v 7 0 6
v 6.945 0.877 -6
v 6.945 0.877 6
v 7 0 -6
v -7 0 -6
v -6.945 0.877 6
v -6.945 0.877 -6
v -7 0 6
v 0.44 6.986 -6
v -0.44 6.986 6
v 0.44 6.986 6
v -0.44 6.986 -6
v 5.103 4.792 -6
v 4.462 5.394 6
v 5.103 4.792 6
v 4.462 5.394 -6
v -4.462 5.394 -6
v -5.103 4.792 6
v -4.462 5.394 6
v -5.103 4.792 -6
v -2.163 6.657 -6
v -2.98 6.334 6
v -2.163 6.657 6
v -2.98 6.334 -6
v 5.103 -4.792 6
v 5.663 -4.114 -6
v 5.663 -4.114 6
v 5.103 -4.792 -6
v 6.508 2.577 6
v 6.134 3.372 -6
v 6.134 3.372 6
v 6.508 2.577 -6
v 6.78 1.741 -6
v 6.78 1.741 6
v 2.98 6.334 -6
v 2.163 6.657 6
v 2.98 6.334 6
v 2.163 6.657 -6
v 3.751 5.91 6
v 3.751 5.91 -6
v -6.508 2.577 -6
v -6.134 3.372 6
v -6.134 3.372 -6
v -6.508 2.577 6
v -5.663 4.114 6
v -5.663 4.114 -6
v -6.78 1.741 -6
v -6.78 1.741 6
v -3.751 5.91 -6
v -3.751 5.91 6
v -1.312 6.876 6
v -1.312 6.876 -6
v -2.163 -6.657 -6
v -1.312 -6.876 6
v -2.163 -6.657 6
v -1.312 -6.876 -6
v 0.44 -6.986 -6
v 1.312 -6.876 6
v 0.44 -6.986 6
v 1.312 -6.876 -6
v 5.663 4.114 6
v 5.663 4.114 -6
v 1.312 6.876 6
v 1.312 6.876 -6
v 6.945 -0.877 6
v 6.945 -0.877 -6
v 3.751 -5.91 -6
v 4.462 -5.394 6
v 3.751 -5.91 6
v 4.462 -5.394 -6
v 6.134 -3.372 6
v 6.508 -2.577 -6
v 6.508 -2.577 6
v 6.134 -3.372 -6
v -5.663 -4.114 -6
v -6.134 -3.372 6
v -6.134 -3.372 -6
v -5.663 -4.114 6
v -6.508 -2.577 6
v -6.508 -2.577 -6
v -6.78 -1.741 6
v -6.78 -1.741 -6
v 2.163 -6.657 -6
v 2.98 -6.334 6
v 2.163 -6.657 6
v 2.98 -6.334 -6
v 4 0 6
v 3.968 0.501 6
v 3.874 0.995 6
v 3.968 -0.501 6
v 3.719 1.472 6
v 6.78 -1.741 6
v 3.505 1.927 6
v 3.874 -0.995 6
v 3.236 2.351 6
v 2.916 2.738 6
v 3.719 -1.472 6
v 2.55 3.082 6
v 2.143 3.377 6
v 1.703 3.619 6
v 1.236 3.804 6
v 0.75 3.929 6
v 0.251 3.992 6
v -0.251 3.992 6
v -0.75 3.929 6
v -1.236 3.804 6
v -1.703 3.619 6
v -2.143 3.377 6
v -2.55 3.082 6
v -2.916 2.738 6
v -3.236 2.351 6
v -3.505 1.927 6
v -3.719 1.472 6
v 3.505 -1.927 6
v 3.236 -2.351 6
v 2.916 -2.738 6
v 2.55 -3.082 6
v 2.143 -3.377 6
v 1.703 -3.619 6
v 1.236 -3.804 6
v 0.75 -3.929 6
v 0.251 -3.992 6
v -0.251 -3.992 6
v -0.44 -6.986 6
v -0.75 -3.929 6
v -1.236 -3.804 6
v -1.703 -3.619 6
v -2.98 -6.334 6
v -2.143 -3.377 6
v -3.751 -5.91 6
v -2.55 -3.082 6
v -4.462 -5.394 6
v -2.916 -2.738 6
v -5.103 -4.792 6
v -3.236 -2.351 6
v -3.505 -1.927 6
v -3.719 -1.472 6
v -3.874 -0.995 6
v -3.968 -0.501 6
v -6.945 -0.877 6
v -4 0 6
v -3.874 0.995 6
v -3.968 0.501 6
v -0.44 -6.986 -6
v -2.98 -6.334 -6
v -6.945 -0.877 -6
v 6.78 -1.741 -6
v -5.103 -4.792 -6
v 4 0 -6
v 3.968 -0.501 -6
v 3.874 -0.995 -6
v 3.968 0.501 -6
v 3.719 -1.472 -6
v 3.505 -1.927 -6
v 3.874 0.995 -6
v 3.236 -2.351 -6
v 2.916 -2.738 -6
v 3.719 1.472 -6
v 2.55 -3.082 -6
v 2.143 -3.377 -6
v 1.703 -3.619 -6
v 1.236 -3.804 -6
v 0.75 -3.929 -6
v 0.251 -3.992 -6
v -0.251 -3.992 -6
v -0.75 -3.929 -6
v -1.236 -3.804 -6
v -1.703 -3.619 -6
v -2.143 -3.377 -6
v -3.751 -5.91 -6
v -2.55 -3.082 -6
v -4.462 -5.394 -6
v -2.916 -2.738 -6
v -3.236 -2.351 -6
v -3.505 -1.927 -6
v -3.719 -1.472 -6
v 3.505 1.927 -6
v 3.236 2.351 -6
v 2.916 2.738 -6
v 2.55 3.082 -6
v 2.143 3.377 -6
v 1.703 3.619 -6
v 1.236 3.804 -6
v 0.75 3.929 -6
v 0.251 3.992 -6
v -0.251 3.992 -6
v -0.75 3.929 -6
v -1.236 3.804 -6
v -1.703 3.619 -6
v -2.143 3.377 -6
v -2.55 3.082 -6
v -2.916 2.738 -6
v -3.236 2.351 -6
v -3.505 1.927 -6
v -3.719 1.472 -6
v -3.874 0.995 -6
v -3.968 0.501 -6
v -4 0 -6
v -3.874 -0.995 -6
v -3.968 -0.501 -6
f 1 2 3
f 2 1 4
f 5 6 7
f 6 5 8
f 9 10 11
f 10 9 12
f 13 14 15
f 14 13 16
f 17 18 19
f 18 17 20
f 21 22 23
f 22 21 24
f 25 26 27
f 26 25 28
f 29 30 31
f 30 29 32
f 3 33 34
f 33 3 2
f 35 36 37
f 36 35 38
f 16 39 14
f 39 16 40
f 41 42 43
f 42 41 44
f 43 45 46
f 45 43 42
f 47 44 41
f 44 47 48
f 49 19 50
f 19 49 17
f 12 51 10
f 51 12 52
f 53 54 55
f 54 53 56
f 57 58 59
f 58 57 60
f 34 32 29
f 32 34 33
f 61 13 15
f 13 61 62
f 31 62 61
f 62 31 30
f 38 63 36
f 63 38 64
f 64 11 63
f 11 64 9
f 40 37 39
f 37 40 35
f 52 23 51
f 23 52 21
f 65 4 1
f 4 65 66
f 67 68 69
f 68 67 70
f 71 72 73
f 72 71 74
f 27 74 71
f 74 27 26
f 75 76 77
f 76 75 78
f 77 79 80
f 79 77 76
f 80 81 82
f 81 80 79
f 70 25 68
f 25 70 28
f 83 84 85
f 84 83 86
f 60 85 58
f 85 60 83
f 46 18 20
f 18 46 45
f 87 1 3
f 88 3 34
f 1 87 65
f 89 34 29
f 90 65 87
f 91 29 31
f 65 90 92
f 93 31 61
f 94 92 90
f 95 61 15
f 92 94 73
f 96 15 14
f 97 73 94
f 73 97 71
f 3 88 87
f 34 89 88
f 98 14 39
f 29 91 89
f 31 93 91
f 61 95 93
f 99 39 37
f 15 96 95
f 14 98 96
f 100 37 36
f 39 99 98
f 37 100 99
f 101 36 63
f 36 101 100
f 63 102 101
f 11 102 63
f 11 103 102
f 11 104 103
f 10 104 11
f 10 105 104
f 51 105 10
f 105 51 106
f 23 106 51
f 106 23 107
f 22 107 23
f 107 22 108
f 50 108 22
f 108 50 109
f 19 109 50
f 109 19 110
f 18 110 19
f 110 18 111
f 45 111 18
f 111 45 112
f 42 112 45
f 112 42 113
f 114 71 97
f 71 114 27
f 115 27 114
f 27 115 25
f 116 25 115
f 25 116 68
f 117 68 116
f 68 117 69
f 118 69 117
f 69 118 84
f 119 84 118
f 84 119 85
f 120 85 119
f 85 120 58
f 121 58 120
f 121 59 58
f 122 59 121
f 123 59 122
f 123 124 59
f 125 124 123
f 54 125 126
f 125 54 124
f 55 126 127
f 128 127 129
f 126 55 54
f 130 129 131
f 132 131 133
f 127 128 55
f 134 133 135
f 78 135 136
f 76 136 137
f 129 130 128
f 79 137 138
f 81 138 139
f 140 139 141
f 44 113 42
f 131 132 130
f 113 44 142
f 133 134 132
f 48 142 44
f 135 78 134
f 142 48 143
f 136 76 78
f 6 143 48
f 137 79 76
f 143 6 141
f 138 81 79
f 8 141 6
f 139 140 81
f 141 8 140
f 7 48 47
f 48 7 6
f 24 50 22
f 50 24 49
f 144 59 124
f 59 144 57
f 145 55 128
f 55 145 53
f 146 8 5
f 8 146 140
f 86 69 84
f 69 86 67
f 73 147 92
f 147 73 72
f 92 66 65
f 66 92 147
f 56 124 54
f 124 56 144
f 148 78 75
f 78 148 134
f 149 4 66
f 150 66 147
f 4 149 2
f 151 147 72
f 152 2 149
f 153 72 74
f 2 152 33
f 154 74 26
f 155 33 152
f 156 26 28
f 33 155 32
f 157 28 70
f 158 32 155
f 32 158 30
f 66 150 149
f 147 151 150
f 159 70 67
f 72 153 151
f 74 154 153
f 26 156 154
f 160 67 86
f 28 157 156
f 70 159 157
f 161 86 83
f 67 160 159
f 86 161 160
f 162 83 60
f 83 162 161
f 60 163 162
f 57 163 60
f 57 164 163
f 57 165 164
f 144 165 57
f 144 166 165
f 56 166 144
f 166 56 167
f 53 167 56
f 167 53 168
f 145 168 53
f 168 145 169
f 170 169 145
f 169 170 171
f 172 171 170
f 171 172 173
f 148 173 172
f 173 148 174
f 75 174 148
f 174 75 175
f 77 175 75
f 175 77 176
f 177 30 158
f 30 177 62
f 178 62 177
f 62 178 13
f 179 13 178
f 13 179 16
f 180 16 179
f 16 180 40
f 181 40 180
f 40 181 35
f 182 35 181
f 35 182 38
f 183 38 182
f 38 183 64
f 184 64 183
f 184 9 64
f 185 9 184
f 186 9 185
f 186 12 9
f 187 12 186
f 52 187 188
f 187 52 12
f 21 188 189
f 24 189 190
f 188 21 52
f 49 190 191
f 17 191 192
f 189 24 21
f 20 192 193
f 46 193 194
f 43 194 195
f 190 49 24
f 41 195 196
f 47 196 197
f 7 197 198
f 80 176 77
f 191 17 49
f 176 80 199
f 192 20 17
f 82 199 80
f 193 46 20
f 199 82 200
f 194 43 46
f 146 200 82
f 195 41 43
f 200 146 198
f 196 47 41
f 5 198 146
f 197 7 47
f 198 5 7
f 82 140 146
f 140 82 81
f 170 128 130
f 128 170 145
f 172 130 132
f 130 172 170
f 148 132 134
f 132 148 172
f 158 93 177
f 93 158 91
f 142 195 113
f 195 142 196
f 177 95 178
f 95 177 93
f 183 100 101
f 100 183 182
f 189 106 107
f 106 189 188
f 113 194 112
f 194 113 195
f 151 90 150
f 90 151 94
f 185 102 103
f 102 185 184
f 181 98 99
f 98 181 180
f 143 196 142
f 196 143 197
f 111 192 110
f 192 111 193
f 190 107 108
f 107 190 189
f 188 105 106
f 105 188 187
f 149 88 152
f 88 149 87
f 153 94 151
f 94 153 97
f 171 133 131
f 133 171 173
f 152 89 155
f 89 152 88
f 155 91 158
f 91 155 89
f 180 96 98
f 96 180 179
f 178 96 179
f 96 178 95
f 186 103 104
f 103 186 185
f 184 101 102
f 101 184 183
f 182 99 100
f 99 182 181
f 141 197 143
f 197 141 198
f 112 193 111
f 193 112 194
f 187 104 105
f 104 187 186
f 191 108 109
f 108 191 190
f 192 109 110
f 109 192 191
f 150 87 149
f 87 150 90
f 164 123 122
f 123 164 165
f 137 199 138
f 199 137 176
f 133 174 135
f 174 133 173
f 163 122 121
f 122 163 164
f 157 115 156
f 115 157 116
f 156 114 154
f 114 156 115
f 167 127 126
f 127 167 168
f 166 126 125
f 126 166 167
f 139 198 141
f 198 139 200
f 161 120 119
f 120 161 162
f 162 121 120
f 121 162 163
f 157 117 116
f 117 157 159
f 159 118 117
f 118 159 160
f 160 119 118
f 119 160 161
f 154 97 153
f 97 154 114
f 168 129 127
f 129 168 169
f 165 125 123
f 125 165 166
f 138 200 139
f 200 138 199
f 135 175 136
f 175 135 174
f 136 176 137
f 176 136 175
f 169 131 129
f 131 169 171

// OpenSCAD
$fn = 50;


difference() {
	union() {
		translate(v = [0, 0, -6.0000000000]) {
			cylinder(h = 12, r = 7.0000000000);
		}
	}
	union() {
		translate(v = [0, 0, -100.0000000000]) {
			cylinder(h = 200, r = 4.0000000000);
		}
	}
}
